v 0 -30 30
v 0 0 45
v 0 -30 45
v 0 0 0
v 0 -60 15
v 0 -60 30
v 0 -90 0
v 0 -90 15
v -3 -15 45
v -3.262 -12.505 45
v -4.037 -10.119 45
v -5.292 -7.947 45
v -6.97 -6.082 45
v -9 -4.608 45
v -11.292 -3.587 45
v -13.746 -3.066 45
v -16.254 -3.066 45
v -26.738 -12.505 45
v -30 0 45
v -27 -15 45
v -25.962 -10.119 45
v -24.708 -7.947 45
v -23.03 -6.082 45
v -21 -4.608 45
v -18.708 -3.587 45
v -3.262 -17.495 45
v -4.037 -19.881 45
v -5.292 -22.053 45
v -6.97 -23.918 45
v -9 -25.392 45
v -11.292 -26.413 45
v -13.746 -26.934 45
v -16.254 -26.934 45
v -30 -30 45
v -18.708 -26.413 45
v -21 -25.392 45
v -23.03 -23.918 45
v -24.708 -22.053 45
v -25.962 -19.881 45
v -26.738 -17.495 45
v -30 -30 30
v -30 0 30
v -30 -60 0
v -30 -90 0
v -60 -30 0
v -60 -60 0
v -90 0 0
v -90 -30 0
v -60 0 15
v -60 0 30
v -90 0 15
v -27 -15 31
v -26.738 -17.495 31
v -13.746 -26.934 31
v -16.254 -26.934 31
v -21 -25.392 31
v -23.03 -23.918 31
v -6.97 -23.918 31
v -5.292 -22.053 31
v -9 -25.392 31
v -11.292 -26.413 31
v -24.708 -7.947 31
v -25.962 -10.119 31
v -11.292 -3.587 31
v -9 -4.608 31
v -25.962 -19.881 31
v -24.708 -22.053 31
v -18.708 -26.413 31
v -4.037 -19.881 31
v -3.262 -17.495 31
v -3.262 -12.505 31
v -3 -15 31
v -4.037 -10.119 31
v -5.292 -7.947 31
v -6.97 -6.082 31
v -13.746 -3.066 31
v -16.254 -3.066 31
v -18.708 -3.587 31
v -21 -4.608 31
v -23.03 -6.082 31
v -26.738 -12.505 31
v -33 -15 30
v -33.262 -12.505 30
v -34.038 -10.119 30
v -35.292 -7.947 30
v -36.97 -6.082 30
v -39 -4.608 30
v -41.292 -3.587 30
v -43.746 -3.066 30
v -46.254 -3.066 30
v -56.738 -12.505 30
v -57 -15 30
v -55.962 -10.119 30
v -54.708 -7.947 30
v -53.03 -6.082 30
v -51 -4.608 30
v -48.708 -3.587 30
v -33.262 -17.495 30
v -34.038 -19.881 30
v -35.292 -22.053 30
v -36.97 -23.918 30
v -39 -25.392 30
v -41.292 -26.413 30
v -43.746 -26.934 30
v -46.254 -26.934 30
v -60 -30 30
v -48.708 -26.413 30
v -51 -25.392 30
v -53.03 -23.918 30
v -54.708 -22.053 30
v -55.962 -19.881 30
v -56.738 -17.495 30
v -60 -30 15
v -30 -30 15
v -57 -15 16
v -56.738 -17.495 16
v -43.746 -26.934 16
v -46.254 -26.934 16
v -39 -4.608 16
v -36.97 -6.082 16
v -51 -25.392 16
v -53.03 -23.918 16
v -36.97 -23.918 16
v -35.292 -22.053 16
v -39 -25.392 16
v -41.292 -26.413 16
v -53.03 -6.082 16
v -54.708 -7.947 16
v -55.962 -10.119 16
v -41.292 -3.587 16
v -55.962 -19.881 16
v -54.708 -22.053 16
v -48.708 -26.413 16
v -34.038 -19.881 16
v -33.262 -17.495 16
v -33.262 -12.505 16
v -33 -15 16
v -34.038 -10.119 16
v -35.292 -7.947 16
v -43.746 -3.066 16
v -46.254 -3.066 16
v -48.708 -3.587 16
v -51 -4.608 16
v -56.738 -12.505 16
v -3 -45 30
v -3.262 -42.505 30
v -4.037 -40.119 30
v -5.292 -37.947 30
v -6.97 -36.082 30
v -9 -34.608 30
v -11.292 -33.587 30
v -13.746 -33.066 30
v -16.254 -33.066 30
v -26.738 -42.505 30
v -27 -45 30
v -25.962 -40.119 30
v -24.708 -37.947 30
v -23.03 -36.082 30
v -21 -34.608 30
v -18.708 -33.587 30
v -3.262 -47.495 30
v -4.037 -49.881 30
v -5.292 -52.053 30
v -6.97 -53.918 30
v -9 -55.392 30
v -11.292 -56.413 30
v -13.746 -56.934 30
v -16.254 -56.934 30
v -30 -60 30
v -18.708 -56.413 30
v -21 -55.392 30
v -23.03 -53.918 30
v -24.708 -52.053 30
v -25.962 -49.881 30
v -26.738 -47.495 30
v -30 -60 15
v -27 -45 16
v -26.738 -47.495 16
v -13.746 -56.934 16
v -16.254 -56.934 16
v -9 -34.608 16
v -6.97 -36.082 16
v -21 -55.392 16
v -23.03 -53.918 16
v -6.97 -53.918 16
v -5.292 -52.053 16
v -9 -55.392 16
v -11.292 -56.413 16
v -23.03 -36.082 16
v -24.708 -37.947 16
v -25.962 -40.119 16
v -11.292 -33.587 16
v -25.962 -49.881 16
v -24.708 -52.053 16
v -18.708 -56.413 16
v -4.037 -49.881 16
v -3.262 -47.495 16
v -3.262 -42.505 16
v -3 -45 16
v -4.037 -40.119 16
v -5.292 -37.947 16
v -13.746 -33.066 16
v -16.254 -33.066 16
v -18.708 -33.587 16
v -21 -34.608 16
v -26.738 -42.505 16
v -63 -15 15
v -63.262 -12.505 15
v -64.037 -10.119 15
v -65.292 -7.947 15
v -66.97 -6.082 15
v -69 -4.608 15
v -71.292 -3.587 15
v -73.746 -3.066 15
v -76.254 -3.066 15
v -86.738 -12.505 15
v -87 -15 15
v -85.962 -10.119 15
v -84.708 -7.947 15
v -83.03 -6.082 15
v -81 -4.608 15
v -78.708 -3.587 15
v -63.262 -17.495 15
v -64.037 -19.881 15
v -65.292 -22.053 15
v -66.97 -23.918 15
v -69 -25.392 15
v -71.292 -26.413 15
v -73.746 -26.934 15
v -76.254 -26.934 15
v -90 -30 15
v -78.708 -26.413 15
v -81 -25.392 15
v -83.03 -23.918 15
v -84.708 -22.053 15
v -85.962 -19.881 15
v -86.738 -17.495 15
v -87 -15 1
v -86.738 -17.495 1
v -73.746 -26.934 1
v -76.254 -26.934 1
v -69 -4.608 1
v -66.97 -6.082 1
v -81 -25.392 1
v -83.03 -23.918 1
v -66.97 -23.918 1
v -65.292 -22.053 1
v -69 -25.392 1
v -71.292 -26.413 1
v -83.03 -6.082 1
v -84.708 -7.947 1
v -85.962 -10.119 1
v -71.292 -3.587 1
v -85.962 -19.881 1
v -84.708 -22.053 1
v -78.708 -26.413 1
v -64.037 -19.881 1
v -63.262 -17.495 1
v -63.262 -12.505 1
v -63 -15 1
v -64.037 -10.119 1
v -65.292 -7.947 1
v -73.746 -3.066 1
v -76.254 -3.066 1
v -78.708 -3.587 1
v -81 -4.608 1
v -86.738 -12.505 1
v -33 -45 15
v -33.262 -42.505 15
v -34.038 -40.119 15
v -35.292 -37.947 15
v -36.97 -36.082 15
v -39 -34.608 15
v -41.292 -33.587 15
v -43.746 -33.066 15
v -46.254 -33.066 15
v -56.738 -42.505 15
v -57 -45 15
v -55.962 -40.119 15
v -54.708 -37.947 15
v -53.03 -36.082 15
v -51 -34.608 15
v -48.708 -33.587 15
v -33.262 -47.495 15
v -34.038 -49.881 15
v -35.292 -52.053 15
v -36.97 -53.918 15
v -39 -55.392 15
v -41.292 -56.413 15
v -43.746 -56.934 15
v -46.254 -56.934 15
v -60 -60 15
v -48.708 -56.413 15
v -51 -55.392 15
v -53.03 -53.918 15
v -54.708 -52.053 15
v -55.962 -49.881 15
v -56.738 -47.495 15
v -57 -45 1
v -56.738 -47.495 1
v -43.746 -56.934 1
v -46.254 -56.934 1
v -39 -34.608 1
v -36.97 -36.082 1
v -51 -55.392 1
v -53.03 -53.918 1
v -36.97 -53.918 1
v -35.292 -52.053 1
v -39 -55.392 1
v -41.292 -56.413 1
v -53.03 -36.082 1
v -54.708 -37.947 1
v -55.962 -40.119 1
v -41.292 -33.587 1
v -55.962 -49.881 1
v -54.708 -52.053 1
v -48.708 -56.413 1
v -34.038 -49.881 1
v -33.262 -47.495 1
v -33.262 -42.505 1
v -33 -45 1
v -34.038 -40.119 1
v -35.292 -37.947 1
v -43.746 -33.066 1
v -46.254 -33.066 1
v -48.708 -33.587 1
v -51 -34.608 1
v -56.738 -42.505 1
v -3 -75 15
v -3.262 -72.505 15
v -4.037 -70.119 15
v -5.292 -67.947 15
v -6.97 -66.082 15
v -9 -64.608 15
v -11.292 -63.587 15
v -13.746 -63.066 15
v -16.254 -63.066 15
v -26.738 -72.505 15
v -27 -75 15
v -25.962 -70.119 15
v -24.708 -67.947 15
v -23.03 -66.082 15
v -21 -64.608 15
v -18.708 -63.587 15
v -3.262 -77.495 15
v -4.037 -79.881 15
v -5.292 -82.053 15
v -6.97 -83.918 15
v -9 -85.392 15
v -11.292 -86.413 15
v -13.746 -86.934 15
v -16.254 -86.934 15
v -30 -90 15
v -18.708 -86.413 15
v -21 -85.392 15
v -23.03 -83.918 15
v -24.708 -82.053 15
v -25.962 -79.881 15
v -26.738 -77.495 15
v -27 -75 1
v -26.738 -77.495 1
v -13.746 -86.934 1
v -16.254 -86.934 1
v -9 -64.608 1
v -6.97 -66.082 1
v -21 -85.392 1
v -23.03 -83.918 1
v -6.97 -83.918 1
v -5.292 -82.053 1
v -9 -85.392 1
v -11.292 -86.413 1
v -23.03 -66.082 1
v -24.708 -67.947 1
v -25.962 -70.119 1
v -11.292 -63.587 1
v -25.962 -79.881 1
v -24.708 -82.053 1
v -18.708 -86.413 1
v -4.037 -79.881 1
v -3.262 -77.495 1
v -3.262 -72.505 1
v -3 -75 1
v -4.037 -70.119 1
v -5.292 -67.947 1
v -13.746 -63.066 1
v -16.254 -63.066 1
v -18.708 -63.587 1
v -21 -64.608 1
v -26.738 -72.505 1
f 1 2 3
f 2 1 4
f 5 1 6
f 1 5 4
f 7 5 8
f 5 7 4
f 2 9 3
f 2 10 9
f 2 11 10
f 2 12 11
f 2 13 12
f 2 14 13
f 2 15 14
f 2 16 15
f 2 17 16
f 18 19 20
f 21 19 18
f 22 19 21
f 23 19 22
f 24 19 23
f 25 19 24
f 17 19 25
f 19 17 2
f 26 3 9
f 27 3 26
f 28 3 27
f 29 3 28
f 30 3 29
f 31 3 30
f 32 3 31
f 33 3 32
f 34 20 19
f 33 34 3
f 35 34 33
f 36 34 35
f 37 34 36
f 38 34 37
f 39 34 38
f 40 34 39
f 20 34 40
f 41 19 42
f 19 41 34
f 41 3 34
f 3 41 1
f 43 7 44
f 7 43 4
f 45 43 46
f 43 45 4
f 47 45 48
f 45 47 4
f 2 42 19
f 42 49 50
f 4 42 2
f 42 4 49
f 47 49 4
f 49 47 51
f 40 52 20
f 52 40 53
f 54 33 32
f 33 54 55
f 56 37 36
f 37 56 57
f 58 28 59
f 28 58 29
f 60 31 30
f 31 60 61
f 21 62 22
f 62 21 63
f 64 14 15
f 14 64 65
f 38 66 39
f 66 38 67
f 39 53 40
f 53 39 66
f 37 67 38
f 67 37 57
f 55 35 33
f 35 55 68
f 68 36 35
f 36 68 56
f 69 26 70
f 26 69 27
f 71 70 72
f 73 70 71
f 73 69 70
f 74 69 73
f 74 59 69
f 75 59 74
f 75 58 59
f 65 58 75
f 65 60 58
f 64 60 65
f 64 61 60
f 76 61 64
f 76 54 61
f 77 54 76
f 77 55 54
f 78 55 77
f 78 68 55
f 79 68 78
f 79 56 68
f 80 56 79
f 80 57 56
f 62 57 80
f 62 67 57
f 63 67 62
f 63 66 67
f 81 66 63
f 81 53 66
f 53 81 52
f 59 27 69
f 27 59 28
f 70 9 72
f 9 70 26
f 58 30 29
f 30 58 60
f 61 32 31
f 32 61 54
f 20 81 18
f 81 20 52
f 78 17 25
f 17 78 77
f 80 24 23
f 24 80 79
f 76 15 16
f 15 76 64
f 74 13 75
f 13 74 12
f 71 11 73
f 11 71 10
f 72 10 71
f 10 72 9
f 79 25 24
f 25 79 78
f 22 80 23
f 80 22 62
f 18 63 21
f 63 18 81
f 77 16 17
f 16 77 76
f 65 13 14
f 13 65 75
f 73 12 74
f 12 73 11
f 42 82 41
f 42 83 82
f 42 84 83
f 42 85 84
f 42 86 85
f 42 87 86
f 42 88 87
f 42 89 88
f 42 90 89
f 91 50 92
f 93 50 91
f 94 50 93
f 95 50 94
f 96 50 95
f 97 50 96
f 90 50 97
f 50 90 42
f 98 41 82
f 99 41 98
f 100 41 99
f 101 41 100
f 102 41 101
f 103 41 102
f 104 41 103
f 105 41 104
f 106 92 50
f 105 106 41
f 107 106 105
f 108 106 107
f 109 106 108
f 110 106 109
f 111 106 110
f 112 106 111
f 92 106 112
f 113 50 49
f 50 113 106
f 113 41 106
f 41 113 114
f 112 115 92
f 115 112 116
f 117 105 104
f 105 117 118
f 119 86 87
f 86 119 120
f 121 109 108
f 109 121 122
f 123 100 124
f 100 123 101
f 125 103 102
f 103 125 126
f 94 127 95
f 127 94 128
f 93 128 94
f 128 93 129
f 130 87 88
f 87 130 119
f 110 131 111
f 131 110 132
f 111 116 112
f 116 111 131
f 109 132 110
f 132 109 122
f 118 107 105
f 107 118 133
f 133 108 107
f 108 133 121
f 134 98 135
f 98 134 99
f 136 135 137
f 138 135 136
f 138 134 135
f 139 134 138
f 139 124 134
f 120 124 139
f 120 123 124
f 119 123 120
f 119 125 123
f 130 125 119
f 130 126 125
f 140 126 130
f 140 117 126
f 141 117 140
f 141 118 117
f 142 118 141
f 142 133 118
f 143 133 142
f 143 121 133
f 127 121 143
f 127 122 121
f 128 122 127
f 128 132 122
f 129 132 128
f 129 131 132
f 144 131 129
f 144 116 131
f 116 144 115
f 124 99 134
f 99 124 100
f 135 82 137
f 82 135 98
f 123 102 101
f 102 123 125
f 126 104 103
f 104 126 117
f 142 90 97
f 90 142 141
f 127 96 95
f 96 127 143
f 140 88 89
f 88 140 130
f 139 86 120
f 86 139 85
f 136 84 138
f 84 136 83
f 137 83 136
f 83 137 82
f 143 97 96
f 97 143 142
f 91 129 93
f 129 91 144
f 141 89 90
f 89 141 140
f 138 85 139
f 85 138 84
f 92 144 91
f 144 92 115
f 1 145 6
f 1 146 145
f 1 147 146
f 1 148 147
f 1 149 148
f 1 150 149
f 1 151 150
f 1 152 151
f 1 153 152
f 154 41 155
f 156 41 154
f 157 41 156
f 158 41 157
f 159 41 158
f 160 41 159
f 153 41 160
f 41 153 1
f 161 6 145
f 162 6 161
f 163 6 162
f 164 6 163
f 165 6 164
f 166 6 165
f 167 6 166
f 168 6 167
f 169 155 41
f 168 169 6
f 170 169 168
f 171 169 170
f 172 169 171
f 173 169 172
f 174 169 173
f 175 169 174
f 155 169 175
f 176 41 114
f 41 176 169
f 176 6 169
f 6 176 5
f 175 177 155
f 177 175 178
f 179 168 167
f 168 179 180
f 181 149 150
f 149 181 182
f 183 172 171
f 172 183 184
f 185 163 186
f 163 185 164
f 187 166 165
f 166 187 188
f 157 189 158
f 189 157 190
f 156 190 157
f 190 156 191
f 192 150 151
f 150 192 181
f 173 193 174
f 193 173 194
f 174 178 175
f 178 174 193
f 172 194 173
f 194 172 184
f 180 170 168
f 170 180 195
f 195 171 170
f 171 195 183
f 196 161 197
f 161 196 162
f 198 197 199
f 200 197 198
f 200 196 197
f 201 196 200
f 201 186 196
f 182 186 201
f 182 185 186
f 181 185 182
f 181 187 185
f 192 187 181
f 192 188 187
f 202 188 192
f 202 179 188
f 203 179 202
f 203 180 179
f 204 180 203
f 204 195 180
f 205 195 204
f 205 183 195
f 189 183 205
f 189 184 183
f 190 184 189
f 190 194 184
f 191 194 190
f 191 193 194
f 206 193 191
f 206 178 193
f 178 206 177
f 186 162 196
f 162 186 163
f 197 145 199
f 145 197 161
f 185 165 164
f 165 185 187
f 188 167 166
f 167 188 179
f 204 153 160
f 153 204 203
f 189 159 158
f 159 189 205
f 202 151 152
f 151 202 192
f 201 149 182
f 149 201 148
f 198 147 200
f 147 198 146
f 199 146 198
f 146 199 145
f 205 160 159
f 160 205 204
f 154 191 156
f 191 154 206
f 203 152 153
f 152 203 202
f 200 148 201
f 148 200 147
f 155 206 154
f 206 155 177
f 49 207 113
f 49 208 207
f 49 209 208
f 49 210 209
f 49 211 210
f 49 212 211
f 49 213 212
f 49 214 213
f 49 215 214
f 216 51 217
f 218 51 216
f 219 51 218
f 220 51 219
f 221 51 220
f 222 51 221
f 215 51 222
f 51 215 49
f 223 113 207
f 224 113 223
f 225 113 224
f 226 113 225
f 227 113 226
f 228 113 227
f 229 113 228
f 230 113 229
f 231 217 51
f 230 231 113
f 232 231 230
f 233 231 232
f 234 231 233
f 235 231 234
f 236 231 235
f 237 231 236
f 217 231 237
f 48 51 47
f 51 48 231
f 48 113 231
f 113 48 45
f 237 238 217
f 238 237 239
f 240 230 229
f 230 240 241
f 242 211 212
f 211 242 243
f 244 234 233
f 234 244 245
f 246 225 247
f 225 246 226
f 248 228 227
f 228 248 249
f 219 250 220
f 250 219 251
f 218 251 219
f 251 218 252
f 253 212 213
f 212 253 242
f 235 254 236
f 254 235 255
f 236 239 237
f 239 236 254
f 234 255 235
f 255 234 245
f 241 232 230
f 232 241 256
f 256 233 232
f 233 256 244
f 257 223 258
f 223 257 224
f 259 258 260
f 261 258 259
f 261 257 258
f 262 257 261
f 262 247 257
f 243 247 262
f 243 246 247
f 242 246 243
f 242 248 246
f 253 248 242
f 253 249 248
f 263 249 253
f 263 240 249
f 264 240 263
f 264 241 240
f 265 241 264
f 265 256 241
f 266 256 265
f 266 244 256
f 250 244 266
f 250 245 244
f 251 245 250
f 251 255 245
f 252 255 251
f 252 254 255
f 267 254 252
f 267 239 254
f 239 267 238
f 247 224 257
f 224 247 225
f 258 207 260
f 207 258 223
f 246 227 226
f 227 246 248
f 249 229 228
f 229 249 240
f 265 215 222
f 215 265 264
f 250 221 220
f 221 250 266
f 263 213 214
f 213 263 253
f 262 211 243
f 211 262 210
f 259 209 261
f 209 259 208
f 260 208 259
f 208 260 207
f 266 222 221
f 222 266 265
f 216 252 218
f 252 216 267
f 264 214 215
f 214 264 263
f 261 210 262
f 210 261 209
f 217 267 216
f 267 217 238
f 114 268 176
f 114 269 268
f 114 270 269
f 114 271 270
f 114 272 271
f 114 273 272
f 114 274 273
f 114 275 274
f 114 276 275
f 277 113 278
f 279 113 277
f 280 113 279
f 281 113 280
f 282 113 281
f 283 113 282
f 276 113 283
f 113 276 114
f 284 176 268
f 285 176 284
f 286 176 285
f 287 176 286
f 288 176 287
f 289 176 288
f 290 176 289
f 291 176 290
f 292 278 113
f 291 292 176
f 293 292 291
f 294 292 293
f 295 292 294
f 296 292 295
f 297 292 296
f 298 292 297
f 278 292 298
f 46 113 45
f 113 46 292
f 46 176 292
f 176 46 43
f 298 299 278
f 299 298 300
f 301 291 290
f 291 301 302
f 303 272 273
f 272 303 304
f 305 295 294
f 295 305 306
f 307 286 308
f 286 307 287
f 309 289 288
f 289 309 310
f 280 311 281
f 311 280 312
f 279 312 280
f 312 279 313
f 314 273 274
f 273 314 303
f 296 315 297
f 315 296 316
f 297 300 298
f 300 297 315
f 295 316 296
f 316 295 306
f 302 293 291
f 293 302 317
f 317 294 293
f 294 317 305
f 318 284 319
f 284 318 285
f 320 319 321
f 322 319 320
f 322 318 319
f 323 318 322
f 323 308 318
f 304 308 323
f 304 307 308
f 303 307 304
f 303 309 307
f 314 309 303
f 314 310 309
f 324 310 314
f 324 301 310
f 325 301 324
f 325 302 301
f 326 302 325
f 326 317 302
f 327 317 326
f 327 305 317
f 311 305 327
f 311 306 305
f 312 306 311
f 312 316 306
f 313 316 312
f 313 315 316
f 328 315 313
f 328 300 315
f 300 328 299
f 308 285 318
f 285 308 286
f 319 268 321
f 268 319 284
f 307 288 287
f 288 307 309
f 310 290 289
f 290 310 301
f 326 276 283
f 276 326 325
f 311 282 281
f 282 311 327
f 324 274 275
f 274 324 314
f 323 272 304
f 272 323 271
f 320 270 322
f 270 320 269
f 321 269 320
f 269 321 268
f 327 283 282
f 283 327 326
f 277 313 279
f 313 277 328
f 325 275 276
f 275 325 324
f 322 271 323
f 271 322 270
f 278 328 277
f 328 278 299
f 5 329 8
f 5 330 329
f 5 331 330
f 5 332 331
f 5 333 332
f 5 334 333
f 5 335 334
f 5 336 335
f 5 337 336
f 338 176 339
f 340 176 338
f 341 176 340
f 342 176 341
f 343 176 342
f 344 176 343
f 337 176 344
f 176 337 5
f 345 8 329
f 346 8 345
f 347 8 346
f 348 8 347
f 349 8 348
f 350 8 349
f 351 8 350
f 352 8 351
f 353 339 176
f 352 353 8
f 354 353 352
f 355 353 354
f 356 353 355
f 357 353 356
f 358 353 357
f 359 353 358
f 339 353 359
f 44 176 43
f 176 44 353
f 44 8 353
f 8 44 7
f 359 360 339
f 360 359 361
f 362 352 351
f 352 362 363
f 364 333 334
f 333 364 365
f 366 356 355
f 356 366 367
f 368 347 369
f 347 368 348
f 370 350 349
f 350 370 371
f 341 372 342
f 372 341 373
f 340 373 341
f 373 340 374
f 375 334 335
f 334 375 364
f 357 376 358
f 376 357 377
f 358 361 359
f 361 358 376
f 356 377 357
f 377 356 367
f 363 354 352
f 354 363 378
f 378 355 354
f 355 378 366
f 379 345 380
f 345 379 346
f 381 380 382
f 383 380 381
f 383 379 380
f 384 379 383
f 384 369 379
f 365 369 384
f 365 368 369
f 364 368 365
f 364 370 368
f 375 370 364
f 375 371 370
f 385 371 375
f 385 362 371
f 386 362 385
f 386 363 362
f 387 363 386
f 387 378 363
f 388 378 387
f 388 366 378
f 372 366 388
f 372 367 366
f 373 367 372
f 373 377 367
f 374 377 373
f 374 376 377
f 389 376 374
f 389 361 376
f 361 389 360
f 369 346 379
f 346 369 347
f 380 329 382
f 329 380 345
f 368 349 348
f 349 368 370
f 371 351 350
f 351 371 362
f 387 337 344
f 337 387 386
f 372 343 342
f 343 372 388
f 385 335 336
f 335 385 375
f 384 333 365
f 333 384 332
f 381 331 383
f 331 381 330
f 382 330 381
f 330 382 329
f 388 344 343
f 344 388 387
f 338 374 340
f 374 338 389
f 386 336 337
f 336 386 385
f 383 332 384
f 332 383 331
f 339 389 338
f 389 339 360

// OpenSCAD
n = 3;

holeDiameter = 24;
holeDepth = 14;
boxLength = 30;
boxHeightFactor = .5;

module makeBox (boxHeight) {
    difference() {
        cube([boxLength,boxLength,boxHeight]);
        translate([boxLength*.5,boxLength*.5,boxHeight])
        cylinder(h=holeDepth*2,d=holeDiameter,center=true);
    }
}

rotate(180,0,0)
for (i=[0:n-1]) {
    for (j=[0:i]) {
        translate([(i-j)*boxLength,(j)*boxLength,0])
        makeBox((n-i)*boxLength*boxHeightFactor);
    }
}
